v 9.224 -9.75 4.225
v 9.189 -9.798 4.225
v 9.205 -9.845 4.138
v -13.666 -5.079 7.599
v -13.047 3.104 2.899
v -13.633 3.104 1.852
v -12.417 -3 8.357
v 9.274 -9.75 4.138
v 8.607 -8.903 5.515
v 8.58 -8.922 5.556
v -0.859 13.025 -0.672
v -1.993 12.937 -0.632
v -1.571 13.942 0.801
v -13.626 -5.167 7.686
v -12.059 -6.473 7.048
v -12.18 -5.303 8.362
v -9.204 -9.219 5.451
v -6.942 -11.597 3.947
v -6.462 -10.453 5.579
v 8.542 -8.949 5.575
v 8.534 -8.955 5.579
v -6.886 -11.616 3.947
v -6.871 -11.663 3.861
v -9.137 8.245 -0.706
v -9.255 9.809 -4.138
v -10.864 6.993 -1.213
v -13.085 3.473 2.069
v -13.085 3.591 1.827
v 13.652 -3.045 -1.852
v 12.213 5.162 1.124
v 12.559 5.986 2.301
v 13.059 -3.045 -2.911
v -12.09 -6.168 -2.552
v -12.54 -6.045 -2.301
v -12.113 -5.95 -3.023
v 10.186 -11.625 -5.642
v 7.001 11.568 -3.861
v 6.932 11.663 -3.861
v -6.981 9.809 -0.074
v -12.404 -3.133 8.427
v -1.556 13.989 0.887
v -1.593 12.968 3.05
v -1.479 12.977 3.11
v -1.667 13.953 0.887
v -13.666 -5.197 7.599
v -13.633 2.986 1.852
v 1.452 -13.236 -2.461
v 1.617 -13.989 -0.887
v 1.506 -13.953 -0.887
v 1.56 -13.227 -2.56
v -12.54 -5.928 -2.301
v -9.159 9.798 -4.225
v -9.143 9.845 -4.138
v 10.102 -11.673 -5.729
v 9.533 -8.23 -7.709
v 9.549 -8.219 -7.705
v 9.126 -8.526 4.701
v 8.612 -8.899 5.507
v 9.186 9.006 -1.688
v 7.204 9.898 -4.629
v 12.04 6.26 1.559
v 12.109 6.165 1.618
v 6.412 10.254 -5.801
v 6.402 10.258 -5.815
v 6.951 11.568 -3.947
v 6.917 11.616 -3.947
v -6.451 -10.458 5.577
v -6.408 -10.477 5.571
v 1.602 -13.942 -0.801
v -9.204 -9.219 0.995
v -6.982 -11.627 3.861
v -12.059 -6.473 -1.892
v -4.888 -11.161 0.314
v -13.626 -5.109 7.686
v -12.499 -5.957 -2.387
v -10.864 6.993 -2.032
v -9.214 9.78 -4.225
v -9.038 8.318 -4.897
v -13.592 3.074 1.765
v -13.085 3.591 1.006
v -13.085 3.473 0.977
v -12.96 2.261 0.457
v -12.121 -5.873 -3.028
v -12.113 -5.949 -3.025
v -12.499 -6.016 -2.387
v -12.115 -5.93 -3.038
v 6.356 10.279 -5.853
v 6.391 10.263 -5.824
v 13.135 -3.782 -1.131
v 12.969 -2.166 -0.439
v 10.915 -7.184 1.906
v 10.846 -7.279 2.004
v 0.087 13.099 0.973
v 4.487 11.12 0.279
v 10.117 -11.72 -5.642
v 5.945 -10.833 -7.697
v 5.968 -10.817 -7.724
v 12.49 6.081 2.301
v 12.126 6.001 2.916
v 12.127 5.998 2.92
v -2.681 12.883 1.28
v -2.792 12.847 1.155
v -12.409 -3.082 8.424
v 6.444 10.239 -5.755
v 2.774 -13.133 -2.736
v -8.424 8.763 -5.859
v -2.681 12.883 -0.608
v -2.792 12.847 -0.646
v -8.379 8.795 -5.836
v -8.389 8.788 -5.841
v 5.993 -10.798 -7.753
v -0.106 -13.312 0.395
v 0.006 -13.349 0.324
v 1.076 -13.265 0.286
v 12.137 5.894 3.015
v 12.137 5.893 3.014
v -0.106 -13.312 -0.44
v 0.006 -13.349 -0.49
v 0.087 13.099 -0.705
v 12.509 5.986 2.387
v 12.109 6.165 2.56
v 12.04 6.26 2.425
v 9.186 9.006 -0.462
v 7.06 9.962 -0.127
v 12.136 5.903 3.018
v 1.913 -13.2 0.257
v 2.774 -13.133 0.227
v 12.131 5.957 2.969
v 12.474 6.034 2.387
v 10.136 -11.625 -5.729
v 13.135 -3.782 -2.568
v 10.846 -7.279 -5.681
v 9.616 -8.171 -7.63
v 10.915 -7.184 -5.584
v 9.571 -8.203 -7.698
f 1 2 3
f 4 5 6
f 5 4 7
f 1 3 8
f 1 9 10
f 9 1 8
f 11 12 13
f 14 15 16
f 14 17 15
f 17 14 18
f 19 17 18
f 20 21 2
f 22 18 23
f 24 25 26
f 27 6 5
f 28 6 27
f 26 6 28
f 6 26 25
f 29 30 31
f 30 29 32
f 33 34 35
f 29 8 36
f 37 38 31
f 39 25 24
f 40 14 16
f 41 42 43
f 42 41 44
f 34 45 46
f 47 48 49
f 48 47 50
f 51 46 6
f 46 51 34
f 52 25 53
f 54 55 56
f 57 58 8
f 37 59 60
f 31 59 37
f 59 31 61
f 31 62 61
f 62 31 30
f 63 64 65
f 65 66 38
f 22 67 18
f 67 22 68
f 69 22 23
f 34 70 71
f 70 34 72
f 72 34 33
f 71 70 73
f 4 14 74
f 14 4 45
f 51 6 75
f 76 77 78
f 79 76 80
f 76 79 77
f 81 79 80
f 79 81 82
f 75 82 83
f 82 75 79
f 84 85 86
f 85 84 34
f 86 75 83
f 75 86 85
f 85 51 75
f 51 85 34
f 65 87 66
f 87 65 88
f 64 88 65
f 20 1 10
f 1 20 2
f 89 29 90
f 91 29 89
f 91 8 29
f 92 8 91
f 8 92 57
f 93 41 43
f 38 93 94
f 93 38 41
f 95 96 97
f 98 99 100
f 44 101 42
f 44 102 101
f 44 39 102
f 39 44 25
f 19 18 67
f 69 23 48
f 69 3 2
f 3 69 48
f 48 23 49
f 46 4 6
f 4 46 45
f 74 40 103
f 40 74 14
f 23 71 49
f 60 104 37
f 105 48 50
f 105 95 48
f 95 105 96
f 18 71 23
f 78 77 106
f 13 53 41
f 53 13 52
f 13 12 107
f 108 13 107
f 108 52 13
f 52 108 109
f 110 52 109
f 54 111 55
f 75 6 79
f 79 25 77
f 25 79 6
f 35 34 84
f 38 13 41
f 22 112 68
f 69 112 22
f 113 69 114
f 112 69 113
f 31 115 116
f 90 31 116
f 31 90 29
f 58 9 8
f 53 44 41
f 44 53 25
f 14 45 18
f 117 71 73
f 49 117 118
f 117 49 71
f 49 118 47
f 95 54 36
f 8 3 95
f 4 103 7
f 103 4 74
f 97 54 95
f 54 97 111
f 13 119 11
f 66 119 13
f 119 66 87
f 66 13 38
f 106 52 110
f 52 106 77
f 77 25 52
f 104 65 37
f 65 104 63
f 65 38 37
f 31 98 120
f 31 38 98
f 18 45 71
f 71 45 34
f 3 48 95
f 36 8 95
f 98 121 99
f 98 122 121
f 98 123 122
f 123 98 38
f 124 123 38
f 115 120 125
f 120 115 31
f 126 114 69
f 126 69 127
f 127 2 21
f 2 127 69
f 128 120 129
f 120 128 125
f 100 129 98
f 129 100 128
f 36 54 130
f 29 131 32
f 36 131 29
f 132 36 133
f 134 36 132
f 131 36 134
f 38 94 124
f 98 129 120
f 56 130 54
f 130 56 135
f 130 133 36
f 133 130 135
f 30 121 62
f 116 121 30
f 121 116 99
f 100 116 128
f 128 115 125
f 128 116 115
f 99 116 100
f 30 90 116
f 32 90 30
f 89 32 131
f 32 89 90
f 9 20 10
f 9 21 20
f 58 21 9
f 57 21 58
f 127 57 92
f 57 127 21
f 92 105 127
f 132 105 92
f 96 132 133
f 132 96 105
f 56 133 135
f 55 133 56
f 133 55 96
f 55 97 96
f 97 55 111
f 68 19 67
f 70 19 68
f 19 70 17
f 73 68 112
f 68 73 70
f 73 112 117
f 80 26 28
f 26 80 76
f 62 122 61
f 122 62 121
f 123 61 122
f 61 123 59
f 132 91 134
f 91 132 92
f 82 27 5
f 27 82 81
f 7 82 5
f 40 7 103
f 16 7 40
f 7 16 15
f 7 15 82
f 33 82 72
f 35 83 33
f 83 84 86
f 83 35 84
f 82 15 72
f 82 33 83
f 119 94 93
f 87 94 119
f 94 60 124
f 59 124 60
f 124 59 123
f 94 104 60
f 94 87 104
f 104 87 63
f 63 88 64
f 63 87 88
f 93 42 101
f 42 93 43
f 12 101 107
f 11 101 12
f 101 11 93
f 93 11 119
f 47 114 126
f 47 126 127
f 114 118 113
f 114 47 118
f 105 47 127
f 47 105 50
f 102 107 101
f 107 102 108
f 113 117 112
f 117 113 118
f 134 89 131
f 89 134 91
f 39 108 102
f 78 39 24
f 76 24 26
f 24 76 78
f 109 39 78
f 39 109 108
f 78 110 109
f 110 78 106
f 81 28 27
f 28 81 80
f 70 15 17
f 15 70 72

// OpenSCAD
// Auto-generated OpenSCAD file

    inner_points = 10*[[1.0814810122881062, -0.7183738797289009, -0.5468250446206121], [-1.3004127886071162, 0.35322504522391734, -0.366937214163524], [1.303539873942325, -0.3781851139200541, 0.366937214163524], [-1.0783539269528974, 0.693413811032764, 0.5468250446206121], [-0.002530637731901048, -1.325352391133482, 0.48977025638353333], [-0.9123331120812015, -0.9160380241093531, 0.5584812934556624], [0.9154601974164103, 0.8910779554132162, -0.5584812934556624], [0.005657723067109926, 1.300392322437345, -0.48977025638353333], [-0.46443592982219944, -0.8810934394293531, -0.9959320939274633], [0.11692171749165503, 0.00953231204908575, 1.3963285572062816], [-0.11379463215644614, -0.03449238074522254, -1.3963285572062816], [0.46756301515740833, 0.8561333707332163, 0.9959320939274633], [0.27428504436946866, -1.303755450078493, -0.47091004958709537], [-1.197806282176454, -0.6414708921498036, -0.3597332562021365], [0.6335838300291047, -0.7533184644089008, 1.0075883427625139], [-0.8385074965168178, -0.09103390648021122, 1.1187651361474726], [0.8416345818520266, 0.06607383778407443, -1.1187651361474726], [-0.6304567446938959, 0.728358395712764, -1.0075883427625139], [1.2009333675116627, 0.6165108234536667, 0.3597332562021365], [-0.27115795903425977, 1.278795381382356, 0.47091004958709537], [0.4759894926735763, -0.839597012174386, -1.3333903450470872], [1.0952793220598376, 0.1091399180587309, 1.2149595344691149]];

    outer_points = 10*[[0.15864682006284056, -1.3894175827447022, -0.08874378178914308], [0.6901488531106656, 1.1567979453568165, -0.38605513301949795], [-0.6901488531106656, -1.1567979453568165, 0.38605513301949795], [-0.15864682006284056, 1.3894175827447022, 0.08874378178914308], [-0.7405582699303093, -0.4862838945260085, -1.0856458512447171], [-0.5375425583957099, 0.4862838945260085, -1.1992086821735548], [0.5375425583957099, -0.4862838945260085, 1.1992086821735548], [0.7405582699303093, 0.4862838945260085, 1.0856458512447171], [0.8669924232504709, -0.30450305856608023, -1.0578882346035428], [-1.3551834986216158, 0.30450305856608023, 0.18515146218704537], [1.3551834986216158, -0.30450305856608023, -0.18515146218704537], [-0.8669924232504709, 0.30450305856608023, 1.0578882346035428], [0.12749208711524018, -0.9750171093968881, -0.9983050113411022], [0.45597840862846595, 0.5986306296526133, -1.1820535316426193], [-1.2458881615833401, -0.5986306296526133, -0.23006422935915521], [-0.9174018400701144, 0.9750171093968881, -0.4138127496606724], [0.9174018400701144, -0.9750171093968881, 0.4138127496606724], [1.2458881615833401, 0.5986306296526133, 0.23006422935915521], [-0.45597840862846595, -0.5986306296526133, 1.1820535316426193], [-0.12749208711524018, 0.9750171093968881, 0.9983050113411022], [1.008624136050673, -1.1625333737755705, -0.5642036833860836], [-1.358543396501757, -0.5137910787071536, 0.7599413507467598]];

    // Convex hull for inner set (I)
    module inner_hull() {
        hull() {
            for (p = inner_points) {
                translate(p) sphere(r=0.1);
            }
        }
    }

    // Convex hull for outer set (O) minus inner hull (O \ I)
    module outer_minus_inner() {
        difference() {
            hull() {
                for (p = outer_points) {
                    translate(p) sphere(r=0.1);
                }
            }
            inner_hull(); // Subtract inner hull
        }
    }

    // Convex hull for outer set (O) minus all translated inner hulls
    module outer_minus_AllTranslationInner() {
        difference() {
            hull() {
                for (p = outer_points) {
                    translate(p) sphere(r=0.1);
                }
            }
            hull() {
                translate([0,0,50]) inner_hull();
                translate([0,0,-50]) inner_hull();
            }; // Subtract translated inner hulls
        }
    }

    // Difference between outer_minus_inner and outer_minus_AllTranslationInner
    module outer_minus_inner_diff() {
        difference() {
            // Outer minus inner
            difference() {
                hull() {
                    for (p = outer_points) {
                        translate(p) sphere(r=0.1);
                    }
                }
                inner_hull();
            }

            // Subtract Outer minus AllTranslationInner
            difference() {
                hull() {
                    for (p = outer_points) {
                        translate(p) sphere(r=0.1);
                    }
                }
                hull() {
                    translate([0,0,50]) inner_hull();
                    translate([0,0,-50]) inner_hull();
                };
            }
        }
    }

    // Rendering all with colors applied
    color([0, 1, 0, 1]) outer_minus_AllTranslationInner(); // Opaque green
    
